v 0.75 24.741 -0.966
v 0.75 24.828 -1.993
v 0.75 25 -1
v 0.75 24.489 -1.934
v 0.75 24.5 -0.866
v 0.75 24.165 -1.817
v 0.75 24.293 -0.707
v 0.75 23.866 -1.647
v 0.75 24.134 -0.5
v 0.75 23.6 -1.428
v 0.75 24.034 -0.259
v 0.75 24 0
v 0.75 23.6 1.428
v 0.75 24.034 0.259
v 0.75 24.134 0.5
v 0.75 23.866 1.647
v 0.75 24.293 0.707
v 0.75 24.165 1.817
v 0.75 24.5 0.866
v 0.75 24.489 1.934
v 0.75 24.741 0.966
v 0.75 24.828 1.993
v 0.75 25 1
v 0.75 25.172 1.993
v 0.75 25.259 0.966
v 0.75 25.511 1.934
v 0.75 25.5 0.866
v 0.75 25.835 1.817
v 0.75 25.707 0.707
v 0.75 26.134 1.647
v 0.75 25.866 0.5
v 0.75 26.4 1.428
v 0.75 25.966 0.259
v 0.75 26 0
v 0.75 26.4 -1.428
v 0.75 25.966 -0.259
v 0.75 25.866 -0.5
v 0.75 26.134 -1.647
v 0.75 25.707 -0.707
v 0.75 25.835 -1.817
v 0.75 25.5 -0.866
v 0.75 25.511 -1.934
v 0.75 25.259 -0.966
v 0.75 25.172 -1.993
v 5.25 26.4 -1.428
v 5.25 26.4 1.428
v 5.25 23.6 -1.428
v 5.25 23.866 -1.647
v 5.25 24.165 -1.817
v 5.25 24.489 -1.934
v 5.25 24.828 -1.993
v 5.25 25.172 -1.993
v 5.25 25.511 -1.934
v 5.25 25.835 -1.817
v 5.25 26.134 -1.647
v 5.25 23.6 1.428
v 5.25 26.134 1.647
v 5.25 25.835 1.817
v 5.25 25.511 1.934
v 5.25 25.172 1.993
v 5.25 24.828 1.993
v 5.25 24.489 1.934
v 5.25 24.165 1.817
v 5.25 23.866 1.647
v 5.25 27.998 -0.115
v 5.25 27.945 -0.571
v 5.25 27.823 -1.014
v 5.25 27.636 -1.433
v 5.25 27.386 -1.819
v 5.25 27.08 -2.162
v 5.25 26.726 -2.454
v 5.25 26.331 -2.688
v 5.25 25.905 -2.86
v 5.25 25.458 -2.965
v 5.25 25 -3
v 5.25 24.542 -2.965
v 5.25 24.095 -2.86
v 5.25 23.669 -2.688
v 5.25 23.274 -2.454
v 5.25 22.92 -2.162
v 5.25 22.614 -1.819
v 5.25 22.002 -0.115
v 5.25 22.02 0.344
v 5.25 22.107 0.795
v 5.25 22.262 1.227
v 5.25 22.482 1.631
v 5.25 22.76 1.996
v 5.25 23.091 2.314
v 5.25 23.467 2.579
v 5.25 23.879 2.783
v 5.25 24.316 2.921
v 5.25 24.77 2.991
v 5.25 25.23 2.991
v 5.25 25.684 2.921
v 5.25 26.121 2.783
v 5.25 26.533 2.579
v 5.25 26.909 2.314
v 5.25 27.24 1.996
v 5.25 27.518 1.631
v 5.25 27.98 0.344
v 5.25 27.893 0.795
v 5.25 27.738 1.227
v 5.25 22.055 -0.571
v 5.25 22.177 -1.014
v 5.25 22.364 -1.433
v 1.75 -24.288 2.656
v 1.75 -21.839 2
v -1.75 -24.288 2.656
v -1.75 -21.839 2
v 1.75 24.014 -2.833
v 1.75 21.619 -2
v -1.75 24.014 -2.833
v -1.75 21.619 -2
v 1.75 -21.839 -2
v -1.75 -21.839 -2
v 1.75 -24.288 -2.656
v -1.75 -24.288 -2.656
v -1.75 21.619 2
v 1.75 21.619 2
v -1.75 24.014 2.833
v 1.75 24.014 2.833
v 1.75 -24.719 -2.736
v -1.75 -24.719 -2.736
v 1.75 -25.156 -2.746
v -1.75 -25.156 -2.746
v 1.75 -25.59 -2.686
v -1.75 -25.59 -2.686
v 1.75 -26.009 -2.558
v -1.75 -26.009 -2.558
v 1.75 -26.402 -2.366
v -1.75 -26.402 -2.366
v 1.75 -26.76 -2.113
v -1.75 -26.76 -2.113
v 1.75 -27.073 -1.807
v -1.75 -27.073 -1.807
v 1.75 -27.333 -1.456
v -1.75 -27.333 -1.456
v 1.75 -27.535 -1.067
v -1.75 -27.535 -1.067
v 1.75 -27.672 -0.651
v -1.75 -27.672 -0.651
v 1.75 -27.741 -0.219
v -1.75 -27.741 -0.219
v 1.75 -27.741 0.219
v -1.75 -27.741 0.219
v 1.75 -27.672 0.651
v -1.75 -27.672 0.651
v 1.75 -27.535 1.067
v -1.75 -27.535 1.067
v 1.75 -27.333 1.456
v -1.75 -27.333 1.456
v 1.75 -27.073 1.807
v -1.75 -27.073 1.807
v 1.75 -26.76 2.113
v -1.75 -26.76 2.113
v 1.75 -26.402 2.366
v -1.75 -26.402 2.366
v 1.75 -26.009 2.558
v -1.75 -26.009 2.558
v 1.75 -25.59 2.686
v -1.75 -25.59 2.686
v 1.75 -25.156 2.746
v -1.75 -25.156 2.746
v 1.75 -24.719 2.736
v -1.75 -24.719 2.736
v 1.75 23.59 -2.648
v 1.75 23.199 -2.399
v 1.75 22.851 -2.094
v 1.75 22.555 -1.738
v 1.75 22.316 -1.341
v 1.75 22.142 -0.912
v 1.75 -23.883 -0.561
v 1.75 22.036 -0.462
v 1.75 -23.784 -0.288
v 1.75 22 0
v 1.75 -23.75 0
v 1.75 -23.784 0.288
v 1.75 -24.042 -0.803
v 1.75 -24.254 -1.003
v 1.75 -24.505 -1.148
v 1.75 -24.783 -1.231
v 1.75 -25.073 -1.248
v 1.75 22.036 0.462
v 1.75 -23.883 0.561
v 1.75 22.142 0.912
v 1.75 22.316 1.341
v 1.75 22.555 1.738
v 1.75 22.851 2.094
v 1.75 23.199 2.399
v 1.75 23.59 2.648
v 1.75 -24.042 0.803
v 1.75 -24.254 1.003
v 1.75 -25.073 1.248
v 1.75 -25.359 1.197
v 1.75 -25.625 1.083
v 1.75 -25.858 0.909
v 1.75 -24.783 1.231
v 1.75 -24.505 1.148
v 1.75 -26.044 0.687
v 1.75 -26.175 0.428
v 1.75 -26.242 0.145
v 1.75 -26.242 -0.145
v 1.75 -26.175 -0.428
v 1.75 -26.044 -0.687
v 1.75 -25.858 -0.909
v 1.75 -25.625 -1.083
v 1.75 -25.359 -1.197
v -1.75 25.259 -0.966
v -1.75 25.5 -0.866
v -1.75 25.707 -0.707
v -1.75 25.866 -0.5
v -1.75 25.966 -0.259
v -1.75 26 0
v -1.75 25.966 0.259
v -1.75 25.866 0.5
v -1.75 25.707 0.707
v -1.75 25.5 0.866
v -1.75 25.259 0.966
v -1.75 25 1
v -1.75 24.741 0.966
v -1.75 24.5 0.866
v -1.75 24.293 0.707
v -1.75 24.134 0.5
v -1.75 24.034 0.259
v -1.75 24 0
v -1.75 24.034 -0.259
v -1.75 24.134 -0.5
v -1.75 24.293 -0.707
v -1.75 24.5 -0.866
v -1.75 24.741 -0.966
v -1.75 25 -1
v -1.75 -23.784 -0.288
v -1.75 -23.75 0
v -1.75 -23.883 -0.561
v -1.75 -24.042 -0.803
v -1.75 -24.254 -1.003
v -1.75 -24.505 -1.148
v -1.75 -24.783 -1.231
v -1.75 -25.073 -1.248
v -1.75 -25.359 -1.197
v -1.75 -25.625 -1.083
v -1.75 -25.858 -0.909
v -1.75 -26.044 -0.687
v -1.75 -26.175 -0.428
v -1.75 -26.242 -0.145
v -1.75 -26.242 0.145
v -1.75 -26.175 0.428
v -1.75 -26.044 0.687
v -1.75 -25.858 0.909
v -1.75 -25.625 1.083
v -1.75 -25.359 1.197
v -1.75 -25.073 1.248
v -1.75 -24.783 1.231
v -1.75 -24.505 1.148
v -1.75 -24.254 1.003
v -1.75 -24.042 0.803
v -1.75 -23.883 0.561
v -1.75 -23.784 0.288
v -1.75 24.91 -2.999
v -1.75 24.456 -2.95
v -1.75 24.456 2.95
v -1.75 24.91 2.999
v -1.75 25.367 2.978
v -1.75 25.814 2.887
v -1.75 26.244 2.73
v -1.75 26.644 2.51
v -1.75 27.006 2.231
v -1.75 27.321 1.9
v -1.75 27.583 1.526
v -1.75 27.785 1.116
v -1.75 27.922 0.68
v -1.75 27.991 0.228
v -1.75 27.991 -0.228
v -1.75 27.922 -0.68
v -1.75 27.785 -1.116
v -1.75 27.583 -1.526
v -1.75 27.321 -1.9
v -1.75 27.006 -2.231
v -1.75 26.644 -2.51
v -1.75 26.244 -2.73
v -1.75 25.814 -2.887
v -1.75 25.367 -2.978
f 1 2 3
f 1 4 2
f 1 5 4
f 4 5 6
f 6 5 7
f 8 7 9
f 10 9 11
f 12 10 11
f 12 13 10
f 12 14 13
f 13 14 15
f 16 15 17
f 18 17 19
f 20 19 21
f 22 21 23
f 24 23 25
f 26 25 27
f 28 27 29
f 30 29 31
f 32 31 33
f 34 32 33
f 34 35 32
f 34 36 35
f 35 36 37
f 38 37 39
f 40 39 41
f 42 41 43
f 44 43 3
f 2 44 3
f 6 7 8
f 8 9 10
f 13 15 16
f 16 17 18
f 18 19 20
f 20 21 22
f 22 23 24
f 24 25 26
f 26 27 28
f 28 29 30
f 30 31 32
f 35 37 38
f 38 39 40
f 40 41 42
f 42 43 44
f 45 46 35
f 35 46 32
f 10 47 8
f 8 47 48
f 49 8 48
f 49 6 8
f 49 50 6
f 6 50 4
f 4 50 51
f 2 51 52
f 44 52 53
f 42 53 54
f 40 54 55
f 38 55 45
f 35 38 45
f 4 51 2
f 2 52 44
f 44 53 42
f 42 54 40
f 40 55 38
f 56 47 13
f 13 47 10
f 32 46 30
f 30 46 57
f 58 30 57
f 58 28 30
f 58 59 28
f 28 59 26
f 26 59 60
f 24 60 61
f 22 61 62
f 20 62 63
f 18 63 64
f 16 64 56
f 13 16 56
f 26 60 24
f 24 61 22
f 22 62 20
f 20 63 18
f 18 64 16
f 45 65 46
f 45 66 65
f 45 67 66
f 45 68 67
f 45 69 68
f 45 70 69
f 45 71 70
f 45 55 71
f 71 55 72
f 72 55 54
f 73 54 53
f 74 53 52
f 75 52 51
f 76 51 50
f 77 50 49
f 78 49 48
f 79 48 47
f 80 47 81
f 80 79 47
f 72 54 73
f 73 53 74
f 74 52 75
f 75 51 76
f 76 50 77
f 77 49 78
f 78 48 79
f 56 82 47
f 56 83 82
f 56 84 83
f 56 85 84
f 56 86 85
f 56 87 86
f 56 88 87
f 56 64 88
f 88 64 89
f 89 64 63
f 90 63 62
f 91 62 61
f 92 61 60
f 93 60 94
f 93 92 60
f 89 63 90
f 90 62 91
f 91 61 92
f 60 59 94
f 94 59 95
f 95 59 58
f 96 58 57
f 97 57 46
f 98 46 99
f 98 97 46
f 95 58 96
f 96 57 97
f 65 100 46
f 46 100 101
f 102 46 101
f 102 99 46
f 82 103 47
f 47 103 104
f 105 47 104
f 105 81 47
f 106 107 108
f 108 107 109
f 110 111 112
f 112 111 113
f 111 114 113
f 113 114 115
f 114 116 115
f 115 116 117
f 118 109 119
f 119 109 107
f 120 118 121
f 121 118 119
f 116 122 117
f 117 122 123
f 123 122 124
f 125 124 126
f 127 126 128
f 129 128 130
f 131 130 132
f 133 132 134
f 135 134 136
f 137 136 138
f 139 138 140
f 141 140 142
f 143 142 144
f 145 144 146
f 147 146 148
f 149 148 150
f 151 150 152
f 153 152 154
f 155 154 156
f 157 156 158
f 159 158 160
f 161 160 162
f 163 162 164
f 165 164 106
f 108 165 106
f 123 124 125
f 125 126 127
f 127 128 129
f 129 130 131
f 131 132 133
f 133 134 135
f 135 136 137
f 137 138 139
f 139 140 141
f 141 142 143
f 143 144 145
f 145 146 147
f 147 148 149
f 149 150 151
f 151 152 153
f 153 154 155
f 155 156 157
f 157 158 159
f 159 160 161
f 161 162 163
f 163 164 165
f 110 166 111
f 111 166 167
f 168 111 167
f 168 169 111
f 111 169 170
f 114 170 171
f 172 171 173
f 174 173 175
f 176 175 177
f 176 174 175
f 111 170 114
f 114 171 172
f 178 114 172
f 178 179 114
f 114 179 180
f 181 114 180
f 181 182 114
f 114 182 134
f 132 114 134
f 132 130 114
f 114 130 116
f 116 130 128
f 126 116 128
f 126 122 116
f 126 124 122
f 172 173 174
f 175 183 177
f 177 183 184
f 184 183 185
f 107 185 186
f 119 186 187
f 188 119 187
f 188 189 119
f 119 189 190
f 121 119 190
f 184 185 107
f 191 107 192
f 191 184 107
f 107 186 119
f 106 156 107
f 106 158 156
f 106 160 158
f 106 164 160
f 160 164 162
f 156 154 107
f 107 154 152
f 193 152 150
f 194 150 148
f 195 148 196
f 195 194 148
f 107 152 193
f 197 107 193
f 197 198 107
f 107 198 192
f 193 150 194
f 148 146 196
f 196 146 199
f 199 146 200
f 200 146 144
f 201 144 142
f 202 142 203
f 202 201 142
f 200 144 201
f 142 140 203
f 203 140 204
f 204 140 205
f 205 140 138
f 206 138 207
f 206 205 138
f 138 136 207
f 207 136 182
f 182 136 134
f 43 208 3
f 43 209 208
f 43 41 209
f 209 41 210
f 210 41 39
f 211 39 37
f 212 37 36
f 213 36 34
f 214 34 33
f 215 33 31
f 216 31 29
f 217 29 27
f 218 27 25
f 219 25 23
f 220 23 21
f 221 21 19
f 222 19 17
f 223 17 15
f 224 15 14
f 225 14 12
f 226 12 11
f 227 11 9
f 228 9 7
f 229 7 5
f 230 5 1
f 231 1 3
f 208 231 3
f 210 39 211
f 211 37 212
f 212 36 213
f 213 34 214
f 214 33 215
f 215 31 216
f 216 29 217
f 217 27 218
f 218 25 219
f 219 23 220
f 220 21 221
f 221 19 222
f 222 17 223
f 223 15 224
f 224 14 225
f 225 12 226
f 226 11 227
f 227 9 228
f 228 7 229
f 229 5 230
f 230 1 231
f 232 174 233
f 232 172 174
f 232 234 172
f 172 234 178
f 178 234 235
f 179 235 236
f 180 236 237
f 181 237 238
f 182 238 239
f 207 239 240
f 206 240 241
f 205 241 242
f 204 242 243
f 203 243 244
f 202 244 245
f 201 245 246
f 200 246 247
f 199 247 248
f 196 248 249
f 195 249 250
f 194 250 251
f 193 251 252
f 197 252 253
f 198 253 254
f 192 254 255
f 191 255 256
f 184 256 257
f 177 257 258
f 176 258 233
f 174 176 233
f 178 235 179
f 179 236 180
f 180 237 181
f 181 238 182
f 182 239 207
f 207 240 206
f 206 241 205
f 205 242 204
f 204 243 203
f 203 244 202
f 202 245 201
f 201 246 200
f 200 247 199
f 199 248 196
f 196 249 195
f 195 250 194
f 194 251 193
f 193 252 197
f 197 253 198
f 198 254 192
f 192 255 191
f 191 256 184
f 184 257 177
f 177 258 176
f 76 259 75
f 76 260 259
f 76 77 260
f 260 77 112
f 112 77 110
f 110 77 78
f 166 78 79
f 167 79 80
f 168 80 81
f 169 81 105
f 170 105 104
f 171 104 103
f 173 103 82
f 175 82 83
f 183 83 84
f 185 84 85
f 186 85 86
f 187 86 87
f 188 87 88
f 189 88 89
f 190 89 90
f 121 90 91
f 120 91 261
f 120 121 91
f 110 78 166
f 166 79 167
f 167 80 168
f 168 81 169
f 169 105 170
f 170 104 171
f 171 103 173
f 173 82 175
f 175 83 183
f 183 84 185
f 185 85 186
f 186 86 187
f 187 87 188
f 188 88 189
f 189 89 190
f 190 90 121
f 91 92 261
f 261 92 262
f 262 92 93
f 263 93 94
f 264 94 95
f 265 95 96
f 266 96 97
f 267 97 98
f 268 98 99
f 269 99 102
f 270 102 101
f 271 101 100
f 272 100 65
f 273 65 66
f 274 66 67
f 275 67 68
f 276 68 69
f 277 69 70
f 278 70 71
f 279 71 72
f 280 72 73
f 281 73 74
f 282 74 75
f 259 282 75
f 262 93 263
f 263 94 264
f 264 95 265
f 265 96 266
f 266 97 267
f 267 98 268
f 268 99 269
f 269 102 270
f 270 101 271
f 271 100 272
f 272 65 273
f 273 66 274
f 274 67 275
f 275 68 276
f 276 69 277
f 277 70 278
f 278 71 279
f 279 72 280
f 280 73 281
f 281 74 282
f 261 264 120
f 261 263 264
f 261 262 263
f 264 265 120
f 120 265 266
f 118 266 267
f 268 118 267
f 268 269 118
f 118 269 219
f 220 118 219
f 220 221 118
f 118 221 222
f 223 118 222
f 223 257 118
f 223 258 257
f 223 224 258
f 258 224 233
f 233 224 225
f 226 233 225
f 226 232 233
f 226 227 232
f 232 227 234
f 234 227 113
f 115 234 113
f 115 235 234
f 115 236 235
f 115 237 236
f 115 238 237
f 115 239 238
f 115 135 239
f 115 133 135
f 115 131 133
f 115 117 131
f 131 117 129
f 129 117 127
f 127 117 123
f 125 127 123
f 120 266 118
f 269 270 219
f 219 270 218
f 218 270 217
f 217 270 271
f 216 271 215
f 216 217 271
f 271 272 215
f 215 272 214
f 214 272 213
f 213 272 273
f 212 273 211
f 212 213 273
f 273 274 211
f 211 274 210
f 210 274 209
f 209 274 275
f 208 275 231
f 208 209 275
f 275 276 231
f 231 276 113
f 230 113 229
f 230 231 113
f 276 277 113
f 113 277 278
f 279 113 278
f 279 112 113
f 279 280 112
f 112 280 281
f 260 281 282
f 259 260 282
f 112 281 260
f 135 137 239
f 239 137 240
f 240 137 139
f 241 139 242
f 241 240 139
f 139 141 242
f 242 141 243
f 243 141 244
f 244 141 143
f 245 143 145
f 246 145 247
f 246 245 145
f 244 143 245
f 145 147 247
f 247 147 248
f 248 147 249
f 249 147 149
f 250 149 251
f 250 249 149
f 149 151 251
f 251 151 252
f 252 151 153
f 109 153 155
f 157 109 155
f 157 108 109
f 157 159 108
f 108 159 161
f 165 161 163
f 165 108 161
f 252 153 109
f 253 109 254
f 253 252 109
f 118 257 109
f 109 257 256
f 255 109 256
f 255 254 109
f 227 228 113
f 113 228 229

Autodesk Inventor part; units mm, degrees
ref_plane "YZ Plane" through (0, 0, 0) normal (1, 0, 0) x (0, 1, 0)
ref_plane "XZ Plane" through (0, 0, 0) normal (0, 1, 0) x (-1, 0, 0)
ref_plane "XY Plane" through (0, 0, 0) normal (0, 0, 1) x (1, 0, 0)
sketch "Sketch1" plane through (0, 0, 0) normal (1, 0, 0) x (0, 1, 0)
  line L0 (-39.2, 0) -> (39.2, 0) projected
  line L1 (0, -4.2) -> (0, 4.2) projected
  circle A0 centre (-25, 0) radius 1.25
  circle A1 centre (-25, 0) radius 3
  circle A2 centre (25, 0) radius 3 construction
  line L2 (-25, 3) -> (25, 3)
  line L3 (-25, -3) -> (25, -3)
  line L4 (25, 3) -> (25, -3) construction
  line L5 (25, 2) -> (25, -2) construction
  arc A3 (25, -3) -> (25, 3) centre (25, 0) ccw
  circle A4 centre (-25, 0) radius 2.2678 construction
  circle A5 centre (25, 0) radius 1
  point P0 (0, 0)
  point P1 (25, 0)
  dimension "d4" = 6
  dimension "d7" = 50
  dimension "d8" = 2.5
  dimension "d10" = 0
  dimension "d30" = 2
extrude "ext_main" add sketch "Sketch1" along normal mid plane 3.5 contours A0 L0 A1 | L0 A1 A0 | A1 L2 L1 L0 | L0 L1 L3 A1 | L1 L2 A3 L0 A5 | L0 A5 A3 L3 L1
sketch "Sketch3" plane through (0, 0, 0) normal (1, 0, 0) x (0, 1, 0)
  arc A0 (-25, 3) -> (-25, -3) centre (-25, 0) ccw projected
  circle A1 centre (-25, 0) radius 1.25 projected
  arc A2 (25, -3) -> (25, 3) centre (25, 0) ccw projected
  circle A3 centre (-25, 0) radius 3 construction
  circle A4 centre (25, 0) radius 3 construction
  line L0 (-22.7639, 2) -> (22.7639, 2) construction
  line L1 (-39.2, 0) -> (39.2, 0) projected
  line L2 (0, -4.2579) -> (0, 4.2579) projected
  line L3 (25, 3) -> (-25, 3) projected
  line L4 (21.6192, 2) -> (24.0141, 2.8334)
  arc A5 (25, 3) -> (24.0141, 2.8334) centre (25, 0) ccw
  line L5 (-21.8389, 2) -> (21.6192, 2)
  circle A6 centre (-25, 0) radius 2.75
  line L6 (-21.8389, 2) -> (-24.2882, 2.6563)
  arc A7 (24.0141, -2.8334) -> (25, -3) centre (25, 0) ccw
  line L7 (21.6192, -2) -> (-22.7639, -2) construction
  line L8 (-21.8389, -2) -> (-24.2882, -2.6563)
  line L9 (21.6192, -2) -> (-21.8389, -2)
  line L10 (21.6192, -2) -> (24.0141, -2.8334)
  point P0 (0, 0)
  dimension "d16" = 1
  dimension "d21" = 5.5
  dimension "d22" = 15
extrude "ext_cutaway" cut sketch "Sketch3" along normal through all both and the other way through all contours A6 L1 A1 | L1 A1 A6 | L5 L4 A5 A2 L1 L2 | L2 L1 A6 L6 L5 | A6 L1 L2 L9 L8 | L1 A2 A7 L10 L9 L2 keep common part
sketch "Sketch4" plane through (1.75, 0, 0) normal (1, 0, 0) x (0, 0, -1)
  arc A0 (2.8334, 24.0141) -> (-2.8334, 24.0141) centre (0, 25) ccw projected
  circle A1 centre (0, 25) radius 1 projected
  circle A2 centre (0, 25) radius 3
  line L0 (-4.2, 0) -> (4.2, 0) projected
  line L1 (-3, 25) -> (3, 25) construction
  circle A3 centre (0, 25) radius 2 construction
  arc A4 (-1.4283, 26.4) -> (-1.4283, 23.6) centre (0, 25) ccw
  arc A5 (1.4283, 23.6) -> (1.4283, 26.4) centre (0, 25) ccw
  line L2 (-1.4283, 26.4) -> (1.4283, 26.4)
  line L3 (-1.4283, 23.6) -> (1.4283, 23.6)
  point P0 (0, 0)
  dimension "d23" = 4
  dimension "d25" = 2.8
extrude "ext_potshaft" add sketch "Sketch4" along normal blind 3.5 contours A2 A0
extrude "ext_cut_potshaft" cut sketch "Sketch4" against normal blind 1 contours L2 A5 L3 A4
equation "\"d7\" = general_link_length"
equation "\"d8\" = screw_m2_bore_loose"
equation "\"d30\" = screw_m2_bore_selfthreading"
equation "\"d21\" = general_bore_smallersupport_diameter"
equation "\"general_link_length\" = 50"
equation "\"screw_m2_bore_loose\" = 2.5"
equation "\"screw_m2_bore_selfthreading\" = 2"
equation "\"general_bore_smallersupport_diameter\" = 5.5"
properties part number "empty"
